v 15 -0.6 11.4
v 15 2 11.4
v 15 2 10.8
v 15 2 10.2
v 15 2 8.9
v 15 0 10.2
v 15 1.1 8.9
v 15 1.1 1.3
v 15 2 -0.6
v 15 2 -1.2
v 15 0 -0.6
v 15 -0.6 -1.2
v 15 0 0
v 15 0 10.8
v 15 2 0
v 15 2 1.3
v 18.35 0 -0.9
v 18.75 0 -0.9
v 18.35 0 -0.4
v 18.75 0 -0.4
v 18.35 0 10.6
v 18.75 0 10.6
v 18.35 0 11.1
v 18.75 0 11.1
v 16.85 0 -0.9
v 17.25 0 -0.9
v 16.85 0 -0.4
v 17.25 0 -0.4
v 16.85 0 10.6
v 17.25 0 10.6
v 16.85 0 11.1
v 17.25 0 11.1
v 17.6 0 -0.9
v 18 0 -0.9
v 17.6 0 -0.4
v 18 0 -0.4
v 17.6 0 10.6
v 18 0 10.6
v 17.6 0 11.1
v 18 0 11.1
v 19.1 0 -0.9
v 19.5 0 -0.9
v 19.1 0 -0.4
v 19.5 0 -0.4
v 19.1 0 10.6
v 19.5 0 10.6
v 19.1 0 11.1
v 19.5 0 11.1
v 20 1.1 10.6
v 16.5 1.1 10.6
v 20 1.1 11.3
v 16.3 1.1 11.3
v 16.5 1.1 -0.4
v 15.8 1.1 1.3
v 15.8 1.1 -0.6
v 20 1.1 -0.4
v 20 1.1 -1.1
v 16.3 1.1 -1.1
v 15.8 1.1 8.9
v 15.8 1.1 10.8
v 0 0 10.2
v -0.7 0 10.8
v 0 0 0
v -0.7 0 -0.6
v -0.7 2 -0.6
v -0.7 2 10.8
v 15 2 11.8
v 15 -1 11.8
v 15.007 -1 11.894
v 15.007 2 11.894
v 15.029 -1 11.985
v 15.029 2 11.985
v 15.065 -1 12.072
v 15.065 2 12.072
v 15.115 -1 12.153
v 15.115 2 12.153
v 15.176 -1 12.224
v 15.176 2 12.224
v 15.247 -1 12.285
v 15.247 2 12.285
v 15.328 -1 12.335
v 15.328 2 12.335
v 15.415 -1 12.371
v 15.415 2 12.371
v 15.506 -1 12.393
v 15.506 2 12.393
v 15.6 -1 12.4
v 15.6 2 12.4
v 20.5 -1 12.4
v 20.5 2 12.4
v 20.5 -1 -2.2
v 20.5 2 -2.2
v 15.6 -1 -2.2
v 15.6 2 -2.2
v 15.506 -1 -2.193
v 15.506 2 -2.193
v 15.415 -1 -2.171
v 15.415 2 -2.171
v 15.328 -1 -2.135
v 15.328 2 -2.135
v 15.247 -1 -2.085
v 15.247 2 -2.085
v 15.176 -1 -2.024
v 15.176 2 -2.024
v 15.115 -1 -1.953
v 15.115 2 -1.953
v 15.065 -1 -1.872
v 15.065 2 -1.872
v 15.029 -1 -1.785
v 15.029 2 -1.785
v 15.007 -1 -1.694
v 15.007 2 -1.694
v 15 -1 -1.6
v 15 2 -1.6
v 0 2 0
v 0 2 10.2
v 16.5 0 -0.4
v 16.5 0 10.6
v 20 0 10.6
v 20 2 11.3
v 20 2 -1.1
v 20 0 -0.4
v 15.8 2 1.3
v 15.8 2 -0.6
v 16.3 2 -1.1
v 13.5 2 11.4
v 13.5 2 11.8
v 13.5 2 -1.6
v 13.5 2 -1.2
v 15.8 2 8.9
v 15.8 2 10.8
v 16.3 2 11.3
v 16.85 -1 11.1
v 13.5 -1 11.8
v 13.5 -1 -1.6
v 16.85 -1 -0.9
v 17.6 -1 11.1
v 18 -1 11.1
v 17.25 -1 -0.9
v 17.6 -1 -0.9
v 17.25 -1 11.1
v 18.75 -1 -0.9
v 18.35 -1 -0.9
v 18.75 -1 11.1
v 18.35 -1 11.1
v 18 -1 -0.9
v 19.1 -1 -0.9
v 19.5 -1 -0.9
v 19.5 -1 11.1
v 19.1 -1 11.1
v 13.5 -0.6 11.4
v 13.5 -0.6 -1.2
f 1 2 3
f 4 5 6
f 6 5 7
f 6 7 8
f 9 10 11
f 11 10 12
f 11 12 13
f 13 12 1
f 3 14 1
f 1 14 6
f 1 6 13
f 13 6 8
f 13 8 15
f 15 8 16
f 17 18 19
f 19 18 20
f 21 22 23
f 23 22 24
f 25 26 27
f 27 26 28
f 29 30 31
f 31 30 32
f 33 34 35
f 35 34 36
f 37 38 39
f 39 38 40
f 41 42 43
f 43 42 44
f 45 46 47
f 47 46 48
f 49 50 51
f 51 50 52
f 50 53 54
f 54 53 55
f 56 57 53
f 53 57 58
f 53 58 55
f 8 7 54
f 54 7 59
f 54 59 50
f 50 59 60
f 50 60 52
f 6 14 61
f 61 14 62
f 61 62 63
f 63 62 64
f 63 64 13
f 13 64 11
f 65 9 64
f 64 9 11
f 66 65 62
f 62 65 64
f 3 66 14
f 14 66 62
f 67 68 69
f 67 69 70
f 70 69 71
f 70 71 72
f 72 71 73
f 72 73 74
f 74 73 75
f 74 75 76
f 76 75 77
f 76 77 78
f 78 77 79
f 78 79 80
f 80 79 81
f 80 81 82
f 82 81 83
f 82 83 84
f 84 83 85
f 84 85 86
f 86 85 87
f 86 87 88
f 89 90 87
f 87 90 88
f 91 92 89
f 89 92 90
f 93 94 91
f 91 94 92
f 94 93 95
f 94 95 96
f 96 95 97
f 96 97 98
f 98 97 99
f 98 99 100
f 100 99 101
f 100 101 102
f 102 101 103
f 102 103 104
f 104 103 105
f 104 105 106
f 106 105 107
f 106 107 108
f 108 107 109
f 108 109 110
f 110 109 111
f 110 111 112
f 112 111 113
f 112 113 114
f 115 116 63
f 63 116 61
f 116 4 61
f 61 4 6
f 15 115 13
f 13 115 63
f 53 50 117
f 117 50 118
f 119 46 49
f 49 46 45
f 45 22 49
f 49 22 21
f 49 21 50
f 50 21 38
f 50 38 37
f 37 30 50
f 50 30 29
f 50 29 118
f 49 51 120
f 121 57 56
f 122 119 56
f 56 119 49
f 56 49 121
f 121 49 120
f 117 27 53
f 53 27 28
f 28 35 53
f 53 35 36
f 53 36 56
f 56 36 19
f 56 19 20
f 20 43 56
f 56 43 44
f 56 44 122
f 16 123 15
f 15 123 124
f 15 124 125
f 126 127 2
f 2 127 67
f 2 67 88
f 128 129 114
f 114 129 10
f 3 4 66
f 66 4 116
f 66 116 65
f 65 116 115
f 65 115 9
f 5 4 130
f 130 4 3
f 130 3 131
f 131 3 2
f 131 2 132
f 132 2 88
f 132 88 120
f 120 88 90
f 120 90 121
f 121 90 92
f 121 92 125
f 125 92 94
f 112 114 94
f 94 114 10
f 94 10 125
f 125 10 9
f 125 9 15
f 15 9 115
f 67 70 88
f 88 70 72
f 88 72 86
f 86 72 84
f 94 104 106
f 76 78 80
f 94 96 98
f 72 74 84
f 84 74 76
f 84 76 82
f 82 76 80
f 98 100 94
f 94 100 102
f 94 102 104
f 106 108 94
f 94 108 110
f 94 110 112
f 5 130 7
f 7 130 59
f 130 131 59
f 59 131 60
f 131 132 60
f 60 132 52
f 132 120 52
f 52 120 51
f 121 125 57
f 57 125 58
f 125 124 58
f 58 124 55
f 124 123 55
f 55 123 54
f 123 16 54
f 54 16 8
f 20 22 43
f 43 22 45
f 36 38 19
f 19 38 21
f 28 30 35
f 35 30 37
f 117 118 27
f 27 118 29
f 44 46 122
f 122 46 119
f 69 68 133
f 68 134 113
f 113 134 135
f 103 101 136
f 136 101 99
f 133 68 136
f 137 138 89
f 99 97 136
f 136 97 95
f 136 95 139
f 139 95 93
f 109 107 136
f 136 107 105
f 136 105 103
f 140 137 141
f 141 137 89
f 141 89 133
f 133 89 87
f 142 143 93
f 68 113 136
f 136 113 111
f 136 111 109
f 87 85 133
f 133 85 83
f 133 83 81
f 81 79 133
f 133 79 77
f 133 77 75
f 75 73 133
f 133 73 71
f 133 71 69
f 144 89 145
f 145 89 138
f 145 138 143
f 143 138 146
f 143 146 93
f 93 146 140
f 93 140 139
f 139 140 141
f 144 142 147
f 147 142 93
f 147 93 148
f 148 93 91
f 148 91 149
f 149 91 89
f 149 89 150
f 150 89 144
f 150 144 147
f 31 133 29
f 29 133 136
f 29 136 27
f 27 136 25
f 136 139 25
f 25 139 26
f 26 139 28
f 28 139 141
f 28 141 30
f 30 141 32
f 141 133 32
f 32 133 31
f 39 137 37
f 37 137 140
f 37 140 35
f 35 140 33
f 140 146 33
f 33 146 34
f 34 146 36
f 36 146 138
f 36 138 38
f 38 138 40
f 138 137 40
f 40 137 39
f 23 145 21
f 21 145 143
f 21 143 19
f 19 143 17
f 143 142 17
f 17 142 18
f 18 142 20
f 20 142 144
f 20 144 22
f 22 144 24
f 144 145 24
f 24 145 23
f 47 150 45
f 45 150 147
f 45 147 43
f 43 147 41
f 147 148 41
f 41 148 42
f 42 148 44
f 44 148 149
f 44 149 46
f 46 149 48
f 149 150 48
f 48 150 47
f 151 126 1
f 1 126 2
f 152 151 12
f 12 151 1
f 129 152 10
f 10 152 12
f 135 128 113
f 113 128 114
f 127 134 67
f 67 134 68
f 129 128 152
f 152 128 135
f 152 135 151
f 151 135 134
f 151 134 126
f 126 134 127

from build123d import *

# Parameters (mm, degrees)
SKETCH_1_W      = 15
SKETCH_1_H      = 10.2
SKETCH_1_W_2    = 3.5
SKETCH_1_H_2    = 11
EXTRUDE_1_DEPTH = 1.1
EXTRUDE_2_DEPTH = 0.9
SKETCH_3_W      = 0.4
SKETCH_3_H      = 12
EXTRUDE_3_DEPTH = 1
EXTRUDE_4_DEPTH = 1.5


with BuildPart() as part:
    # 草图1 → 凸台-拉伸1 (new body)
    with BuildSketch(Plane(origin=(0, 0, 0), x_dir=(1, 0, 0), z_dir=(0, 1, 0))):
        with BuildLine():
            Line((-0.7, 0.6), (-0.7, -10.8))
            Line((-0.7, -10.8), (15, -10.8))
            Line((15, -10.8), (15, -11.8))
            ThreePointArc((15, -11.8), (15.175735931, -12.224264069), (15.6, -12.4))
            Line((15.6, -12.4), (20.5, -12.4))
            Line((20.5, -12.4), (20.5, 2.2))
            Line((20.5, 2.2), (15.6, 2.2))
            ThreePointArc((15.6, 2.2), (15.175735931, 2.024264069), (15, 1.6))
            Line((15, 1.6), (15, 0.6))
            Line((15, 0.6), (-0.7, 0.6))
        make_face()
        with Locations((7.5, -5.1)):
            Rectangle(SKETCH_1_W, SKETCH_1_H, mode=Mode.SUBTRACT)
        with Locations((18.25, -5.1)):
            Rectangle(SKETCH_1_W_2, SKETCH_1_H_2, mode=Mode.SUBTRACT)
    extrude(amount=EXTRUDE_1_DEPTH)

    # 草图2 → 凸台-拉伸2 (add)
    with BuildSketch(Plane(origin=(0, 1.1, 0), x_dir=(1, 0, 0), z_dir=(0, 1, 0))):
        with BuildLine():
            Line((15, -10.8), (-0.7, -10.8))
            Line((-0.7, -10.8), (-0.7, 0.6))
            Line((-0.7, 0.6), (15, 0.6))
            Line((15, 0.6), (15, 1.6))
            ThreePointArc((15, 1.6), (15.175735931, 2.024264069), (15.6, 2.2))
            Line((15.6, 2.2), (20.5, 2.2))
            Line((20.5, 2.2), (20.5, -12.4))
            Line((20.5, -12.4), (15.6, -12.4))
            ThreePointArc((15.6, -12.4), (15.175735931, -12.224264069), (15, -11.8))
            Line((15, -11.8), (15, -10.8))
        make_face()
        Polygon((15, 0), (0, 0), (0, -10.2), (15, -10.2), (15, -8.9), (15.8, -8.9), (15.8, -10.8), (16.3, -11.3), (20, -11.3), (20, 1.1), (16.3, 1.1), (15.8, 0.6), (15.8, -1.3), (15, -1.3), align=None, mode=Mode.SUBTRACT)
    extrude(amount=EXTRUDE_2_DEPTH)

    # 草图3 → 凸台-拉伸3 (add)
    with BuildSketch(Plane.XZ):
        with BuildLine():
            Line((20.5, -2.2), (15.6, -2.2))
            ThreePointArc((15.6, -2.2), (15.175735931, -2.024264069), (15, -1.6))
            Line((15, -1.6), (15, 11.8))
            ThreePointArc((15, 11.8), (15.175735931, 12.224264069), (15.6, 12.4))
            Line((15.6, 12.4), (20.5, 12.4))
            Line((20.5, 12.4), (20.5, -2.2))
        make_face()
        with Locations((17.05, 5.1)):
            Rectangle(SKETCH_3_W, SKETCH_3_H, mode=Mode.SUBTRACT)
        with Locations((17.8, 5.1)):
            Rectangle(SKETCH_3_W, SKETCH_3_H, mode=Mode.SUBTRACT)
        with Locations((18.55, 5.1)):
            Rectangle(SKETCH_3_W, SKETCH_3_H, mode=Mode.SUBTRACT)
        with Locations((19.3, 5.1)):
            Rectangle(SKETCH_3_W, SKETCH_3_H, mode=Mode.SUBTRACT)
    extrude(amount=EXTRUDE_3_DEPTH)

    # 草图4 → 凸台-拉伸4 (add)
    with BuildSketch(Plane.ZY.offset(-15)):
        Polygon((11.8, 2), (11.8, -1), (-1.6, -1), (-1.6, 2), (-1.2, 2), (-1.2, -0.6), (11.4, -0.6), (11.4, 2), align=None)
    extrude(amount=EXTRUDE_4_DEPTH)


solid = part.part
